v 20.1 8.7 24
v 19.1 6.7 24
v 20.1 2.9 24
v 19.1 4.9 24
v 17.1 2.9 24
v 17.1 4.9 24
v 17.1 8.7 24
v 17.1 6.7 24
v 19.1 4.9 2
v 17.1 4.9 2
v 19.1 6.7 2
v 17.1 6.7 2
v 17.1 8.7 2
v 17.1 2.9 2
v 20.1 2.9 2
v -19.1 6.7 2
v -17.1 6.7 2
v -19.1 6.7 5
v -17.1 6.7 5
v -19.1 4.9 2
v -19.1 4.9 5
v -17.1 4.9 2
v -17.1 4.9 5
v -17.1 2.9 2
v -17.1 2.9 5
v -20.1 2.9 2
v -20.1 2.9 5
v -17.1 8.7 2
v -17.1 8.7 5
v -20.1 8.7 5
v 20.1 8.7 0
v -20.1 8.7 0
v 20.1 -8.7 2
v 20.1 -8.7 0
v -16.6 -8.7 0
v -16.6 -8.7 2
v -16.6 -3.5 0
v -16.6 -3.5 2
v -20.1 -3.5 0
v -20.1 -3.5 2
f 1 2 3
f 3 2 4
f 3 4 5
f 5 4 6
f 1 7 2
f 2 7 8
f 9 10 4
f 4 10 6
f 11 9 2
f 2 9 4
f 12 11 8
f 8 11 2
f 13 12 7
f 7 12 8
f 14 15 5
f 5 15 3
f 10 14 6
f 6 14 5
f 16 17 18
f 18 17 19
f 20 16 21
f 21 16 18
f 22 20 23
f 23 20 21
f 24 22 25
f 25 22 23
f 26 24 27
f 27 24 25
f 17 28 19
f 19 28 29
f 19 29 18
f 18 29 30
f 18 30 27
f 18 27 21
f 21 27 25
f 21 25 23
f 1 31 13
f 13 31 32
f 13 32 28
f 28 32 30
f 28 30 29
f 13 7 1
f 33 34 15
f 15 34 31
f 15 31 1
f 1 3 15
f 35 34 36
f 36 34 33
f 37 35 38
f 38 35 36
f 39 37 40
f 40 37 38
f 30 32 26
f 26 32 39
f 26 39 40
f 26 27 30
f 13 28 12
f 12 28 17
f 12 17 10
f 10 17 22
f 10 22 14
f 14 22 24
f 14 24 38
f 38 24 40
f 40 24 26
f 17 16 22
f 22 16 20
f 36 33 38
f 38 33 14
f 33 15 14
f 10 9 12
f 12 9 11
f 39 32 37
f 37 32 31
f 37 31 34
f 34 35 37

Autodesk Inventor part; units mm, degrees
ref_plane "YZ Plane" through (0, 0, 0) normal (1, 0, 0) x (0, 1, 0)
ref_plane "XZ Plane" through (0, 0, 0) normal (0, 1, 0) x (-1, 0, 0)
ref_plane "XY Plane" through (0, 0, 0) normal (0, 0, 1) x (1, 0, 0)
sketch "Sketch1" plane through (0, 0, 0) normal (0, 0, 1) x (1, 0, 0)
  line L0 (20.1, 8.7) -> (-20.1, 8.7)
  line L1 (-20.1, 8.7) -> (-20.1, -8.7)
  line L2 (-20.1, -8.7) -> (20.1, -8.7)
  line L3 (20.1, -8.7) -> (20.1, 8.7)
  line L4 (20.1, 8.7) -> (-20.1, -8.7) construction
  line L5 (-20.1, 8.7) -> (20.1, -8.7) construction
  line L6 (-20.1, -8.7) -> (-16.6, -8.7)
  line L7 (-16.6, -8.7) -> (-16.6, -3.5)
  line L8 (-16.6, -3.5) -> (-20.1, -3.5)
  line L9 (-20.1, -3.5) -> (-20.1, -8.7)
  point P0 (0, 0)
  point P1 (-16.6, -8.7)
  dimension "d0" = 40.2
  dimension "d1" = 17.4
  dimension "d3" = 5.2
  dimension "d20" = 36.7
extrude "Extrusion1" add sketch "Sketch1" along normal blind 2 contours L3 L2 L7 L8 L1 L0
sketch "Sketch2" plane through (0, 0, 2) normal (0, 0, 1) x (1, 0, 0)
  line L0 (-20.1, 8.7) -> (-20.1, -3.5) projected
  line L1 (-20.1, 8.7) -> (-17.1, 8.7)
  line L2 (-17.1, 8.7) -> (-17.1, 2.9)
  line L3 (-17.1, 2.9) -> (-20.1, 2.9)
  line L4 (-20.1, 2.9) -> (-20.1, 8.7)
  line L5 (20.1, -8.7) -> (20.1, 8.7) projected
  line L6 (20.1, 8.7) -> (17.1, 8.7)
  line L7 (17.1, 8.7) -> (17.1, 2.9)
  line L8 (17.1, 2.9) -> (20.1, 2.9)
  line L9 (20.1, 2.9) -> (20.1, 8.7)
  line L10 (-20.1, 2.9) -> (-17.1, 2.9)
  line L11 (-17.1, 2.9) -> (-17.1, 4.9)
  line L12 (-17.1, 4.9) -> (-20.1, 4.9)
  line L13 (-20.1, 4.9) -> (-20.1, 2.9)
  line L14 (-20.1, 8.7) -> (-17.1, 8.7)
  line L15 (-17.1, 8.7) -> (-17.1, 6.7)
  line L16 (-17.1, 6.7) -> (-20.1, 6.7)
  line L17 (-20.1, 6.7) -> (-20.1, 8.7)
  line L18 (-20.1, 6.7) -> (-19.1, 6.7)
  line L19 (-19.1, 6.7) -> (-19.1, 4.9)
  line L20 (-19.1, 4.9) -> (-20.1, 4.9)
  line L21 (-20.1, 4.9) -> (-20.1, 6.7)
  line L22 (20.1, 8.7) -> (17.1, 8.7)
  line L23 (17.1, 8.7) -> (17.1, 6.7)
  line L24 (17.1, 6.7) -> (20.1, 6.7)
  line L25 (20.1, 6.7) -> (20.1, 8.7)
  line L26 (17.1, 2.9) -> (20.1, 2.9)
  line L27 (20.1, 2.9) -> (20.1, 4.9)
  line L28 (20.1, 4.9) -> (17.1, 4.9)
  line L29 (17.1, 4.9) -> (17.1, 2.9)
  line L30 (20.1, 4.9) -> (19.1, 4.9)
  line L31 (19.1, 4.9) -> (19.1, 6.7)
  line L32 (19.1, 6.7) -> (20.1, 6.7)
  line L33 (20.1, 6.7) -> (20.1, 4.9)
  point P0 (0, 0)
  dimension "d6" = 3
  dimension "d7" = 5.8
  dimension "d8" = 3
  dimension "d9" = 5.8
  dimension "d10" = 2
  dimension "d11" = 2
  dimension "d12" = 1
  dimension "d13" = 2
  dimension "d14" = 2
  dimension "d15" = 1
extrude "Extrusion2" add sketch "Sketch2" along normal blind 3 contours L1 L2 L16 L0 | L16 L19 L12 L0 | L12 L2 L3 L0 | L8 L7 L28 L5 | L28 L31 L24 L5 | L24 L7 L6 L5
sketch "Sketch3" plane through (0, 0, 5) normal (0, 0, 1) x (1, 0, 0)
  line L0 (17.1, 4.9) -> (17.1, 2.9) projected
  line L1 (17.1, 2.9) -> (20.1, 2.9) projected
  line L2 (20.1, 2.9) -> (20.1, 8.7) projected
  line L3 (20.1, 8.7) -> (17.1, 8.7) projected
  line L4 (17.1, 8.7) -> (17.1, 6.7) projected
  line L5 (17.1, 6.7) -> (19.1, 6.7) projected
  line L6 (19.1, 6.7) -> (19.1, 4.9) projected
  line L7 (19.1, 4.9) -> (17.1, 4.9) projected
  line L8 (19.1, 6.7) -> (20.1, 6.7)
  point P0 (0, 0)
extrude "Extrusion3" add sketch "Sketch3" along normal blind 19
properties part number "clip_zs042-command" material "PC/ABS Plastic"
